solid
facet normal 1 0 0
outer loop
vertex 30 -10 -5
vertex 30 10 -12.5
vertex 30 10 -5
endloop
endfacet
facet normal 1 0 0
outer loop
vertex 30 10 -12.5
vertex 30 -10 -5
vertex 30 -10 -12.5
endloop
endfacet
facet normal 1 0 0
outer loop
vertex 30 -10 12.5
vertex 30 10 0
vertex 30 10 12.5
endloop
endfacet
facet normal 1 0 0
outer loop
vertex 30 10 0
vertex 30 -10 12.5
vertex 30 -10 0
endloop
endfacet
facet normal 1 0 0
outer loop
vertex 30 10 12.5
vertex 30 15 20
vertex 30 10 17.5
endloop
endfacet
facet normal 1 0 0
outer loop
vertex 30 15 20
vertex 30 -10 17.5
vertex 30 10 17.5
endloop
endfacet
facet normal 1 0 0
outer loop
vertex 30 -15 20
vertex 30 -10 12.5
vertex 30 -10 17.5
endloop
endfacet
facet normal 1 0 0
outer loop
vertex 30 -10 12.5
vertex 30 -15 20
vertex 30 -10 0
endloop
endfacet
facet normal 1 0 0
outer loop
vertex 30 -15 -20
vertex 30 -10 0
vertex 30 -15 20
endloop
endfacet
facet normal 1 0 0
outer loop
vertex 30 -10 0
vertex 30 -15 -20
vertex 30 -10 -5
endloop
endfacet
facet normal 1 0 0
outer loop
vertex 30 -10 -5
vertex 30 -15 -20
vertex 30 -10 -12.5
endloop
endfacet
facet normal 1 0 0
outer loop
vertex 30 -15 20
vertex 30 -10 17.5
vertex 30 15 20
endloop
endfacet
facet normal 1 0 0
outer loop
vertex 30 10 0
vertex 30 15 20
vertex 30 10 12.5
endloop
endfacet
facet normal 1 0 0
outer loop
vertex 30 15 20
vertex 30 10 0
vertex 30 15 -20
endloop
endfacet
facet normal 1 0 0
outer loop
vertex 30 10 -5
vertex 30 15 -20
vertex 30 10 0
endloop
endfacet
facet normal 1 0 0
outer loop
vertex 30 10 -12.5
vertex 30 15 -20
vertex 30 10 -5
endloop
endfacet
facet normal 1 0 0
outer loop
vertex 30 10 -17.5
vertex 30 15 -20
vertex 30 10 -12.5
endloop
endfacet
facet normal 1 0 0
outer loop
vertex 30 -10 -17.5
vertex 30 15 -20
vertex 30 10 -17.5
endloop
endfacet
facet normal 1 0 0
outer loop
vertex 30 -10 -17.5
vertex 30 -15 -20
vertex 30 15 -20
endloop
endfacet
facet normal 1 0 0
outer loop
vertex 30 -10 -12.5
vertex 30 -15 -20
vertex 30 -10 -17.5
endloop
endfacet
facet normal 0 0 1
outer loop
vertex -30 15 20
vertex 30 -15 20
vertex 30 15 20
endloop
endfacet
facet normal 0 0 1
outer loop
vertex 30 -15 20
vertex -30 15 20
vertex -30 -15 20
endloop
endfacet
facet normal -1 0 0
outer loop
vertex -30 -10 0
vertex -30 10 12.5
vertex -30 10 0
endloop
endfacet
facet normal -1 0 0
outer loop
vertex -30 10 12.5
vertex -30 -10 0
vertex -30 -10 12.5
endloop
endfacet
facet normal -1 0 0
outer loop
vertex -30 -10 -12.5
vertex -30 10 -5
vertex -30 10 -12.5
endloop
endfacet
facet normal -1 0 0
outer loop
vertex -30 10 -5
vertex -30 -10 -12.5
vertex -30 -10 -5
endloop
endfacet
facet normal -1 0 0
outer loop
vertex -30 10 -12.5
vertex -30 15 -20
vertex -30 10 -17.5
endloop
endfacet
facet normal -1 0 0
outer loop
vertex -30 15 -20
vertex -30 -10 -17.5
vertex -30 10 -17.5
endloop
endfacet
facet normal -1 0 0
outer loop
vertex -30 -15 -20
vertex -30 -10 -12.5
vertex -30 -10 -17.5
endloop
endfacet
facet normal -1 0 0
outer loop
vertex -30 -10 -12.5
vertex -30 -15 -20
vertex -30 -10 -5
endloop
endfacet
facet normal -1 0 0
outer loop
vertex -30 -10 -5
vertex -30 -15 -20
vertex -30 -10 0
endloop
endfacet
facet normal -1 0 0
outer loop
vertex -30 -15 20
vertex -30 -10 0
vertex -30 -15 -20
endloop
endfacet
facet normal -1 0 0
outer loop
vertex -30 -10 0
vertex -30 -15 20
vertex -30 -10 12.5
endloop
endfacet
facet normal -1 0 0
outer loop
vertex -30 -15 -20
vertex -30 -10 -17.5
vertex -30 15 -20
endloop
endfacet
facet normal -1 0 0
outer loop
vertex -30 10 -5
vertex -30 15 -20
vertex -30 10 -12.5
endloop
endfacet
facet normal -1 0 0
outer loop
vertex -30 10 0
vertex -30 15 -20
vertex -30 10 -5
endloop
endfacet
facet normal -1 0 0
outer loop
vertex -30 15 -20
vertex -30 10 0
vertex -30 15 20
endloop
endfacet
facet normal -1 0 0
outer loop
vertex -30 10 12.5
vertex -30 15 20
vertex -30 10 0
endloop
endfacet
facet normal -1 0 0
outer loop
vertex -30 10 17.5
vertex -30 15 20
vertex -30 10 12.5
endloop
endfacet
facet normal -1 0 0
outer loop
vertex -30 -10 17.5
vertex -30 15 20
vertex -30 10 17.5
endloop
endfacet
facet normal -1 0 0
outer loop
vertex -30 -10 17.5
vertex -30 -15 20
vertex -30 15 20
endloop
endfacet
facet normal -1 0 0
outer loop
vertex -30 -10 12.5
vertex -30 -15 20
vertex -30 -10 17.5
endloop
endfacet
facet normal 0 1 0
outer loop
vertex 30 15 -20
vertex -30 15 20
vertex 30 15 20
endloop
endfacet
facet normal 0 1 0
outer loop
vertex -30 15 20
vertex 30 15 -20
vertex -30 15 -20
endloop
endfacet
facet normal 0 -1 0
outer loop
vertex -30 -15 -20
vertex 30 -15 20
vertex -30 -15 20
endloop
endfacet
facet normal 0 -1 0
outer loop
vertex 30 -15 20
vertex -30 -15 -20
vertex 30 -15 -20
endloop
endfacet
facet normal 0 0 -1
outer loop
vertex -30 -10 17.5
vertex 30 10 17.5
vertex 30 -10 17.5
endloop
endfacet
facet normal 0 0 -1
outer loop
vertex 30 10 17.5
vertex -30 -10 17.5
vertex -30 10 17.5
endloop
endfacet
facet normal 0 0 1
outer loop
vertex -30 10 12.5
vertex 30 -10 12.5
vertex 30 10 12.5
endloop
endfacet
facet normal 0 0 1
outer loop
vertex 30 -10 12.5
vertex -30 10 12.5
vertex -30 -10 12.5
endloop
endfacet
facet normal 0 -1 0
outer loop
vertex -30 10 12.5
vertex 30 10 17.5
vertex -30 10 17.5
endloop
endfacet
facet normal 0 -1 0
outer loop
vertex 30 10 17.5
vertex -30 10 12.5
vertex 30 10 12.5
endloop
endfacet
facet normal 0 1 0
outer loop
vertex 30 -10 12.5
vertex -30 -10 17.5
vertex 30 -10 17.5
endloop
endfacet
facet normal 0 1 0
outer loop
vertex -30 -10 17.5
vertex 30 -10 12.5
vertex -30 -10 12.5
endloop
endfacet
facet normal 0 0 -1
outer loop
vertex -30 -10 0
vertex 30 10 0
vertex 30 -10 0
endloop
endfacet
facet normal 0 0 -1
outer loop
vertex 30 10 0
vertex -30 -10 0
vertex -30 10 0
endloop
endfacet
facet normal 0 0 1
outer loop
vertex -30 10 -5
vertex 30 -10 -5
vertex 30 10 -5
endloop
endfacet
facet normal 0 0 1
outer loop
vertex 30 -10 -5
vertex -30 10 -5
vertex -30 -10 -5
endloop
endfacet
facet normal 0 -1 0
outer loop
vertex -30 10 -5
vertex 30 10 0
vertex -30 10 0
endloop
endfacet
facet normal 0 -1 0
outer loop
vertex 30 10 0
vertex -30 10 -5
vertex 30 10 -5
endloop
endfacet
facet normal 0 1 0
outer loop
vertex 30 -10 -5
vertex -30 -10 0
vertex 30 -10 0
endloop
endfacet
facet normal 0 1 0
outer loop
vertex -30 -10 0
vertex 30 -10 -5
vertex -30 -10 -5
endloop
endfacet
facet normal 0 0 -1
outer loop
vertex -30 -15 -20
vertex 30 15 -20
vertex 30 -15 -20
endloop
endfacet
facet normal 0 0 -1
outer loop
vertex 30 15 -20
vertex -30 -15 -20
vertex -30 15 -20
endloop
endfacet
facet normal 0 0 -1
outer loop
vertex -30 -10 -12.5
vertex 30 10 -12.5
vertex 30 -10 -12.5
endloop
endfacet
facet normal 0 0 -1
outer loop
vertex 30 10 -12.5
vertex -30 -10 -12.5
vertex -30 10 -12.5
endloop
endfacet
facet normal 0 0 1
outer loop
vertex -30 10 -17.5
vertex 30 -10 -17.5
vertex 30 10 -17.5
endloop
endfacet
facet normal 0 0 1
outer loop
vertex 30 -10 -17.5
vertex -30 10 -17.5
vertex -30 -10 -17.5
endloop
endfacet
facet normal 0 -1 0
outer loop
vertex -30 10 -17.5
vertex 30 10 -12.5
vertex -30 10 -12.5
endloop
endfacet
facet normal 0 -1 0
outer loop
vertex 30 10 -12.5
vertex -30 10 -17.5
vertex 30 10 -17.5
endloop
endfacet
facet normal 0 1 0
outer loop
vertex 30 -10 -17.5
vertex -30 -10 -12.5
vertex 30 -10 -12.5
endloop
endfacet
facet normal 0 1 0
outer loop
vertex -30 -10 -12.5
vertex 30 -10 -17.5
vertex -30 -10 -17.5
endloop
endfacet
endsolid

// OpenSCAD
// Parameters for the components
central_block_length = 60;
central_block_width = 30;
central_block_height = 20;
groove_depth = 5;
groove_width = 20;

spacer_block_length = 60;
spacer_block_width = 30;
spacer_block_height = 10;

// Function to create the central block
module central_block() {
    difference() {
        // Main block
        cube([central_block_length, central_block_width, central_block_height], center = true);
        // Groove
        translate([0, 0, -groove_depth / 2])
            cube([central_block_length, groove_width, groove_depth], center = true);
    }
}

// Function to create a spacer block
module spacer_block() {
    difference() {
        // Main block
        cube([spacer_block_length, spacer_block_width, spacer_block_height], center = true);
        // Groove to fit into the central block
        translate([0, 0, spacer_block_height / 2 - groove_depth])
            cube([spacer_block_length, groove_width, groove_depth], center = true);
    }
}

// Assembly of the flexible coupling
module flexible_coupling() {
    // Layer 1: Top spacer block
    translate([0, 0, central_block_height / 2 + spacer_block_height / 2])
        spacer_block();
    // Layer 2: Central block
    central_block();
    // Layer 3: Bottom spacer block
    translate([0, 0, -(central_block_height / 2 + spacer_block_height / 2)])
        spacer_block();
}

// Render the model
flexible_coupling();
